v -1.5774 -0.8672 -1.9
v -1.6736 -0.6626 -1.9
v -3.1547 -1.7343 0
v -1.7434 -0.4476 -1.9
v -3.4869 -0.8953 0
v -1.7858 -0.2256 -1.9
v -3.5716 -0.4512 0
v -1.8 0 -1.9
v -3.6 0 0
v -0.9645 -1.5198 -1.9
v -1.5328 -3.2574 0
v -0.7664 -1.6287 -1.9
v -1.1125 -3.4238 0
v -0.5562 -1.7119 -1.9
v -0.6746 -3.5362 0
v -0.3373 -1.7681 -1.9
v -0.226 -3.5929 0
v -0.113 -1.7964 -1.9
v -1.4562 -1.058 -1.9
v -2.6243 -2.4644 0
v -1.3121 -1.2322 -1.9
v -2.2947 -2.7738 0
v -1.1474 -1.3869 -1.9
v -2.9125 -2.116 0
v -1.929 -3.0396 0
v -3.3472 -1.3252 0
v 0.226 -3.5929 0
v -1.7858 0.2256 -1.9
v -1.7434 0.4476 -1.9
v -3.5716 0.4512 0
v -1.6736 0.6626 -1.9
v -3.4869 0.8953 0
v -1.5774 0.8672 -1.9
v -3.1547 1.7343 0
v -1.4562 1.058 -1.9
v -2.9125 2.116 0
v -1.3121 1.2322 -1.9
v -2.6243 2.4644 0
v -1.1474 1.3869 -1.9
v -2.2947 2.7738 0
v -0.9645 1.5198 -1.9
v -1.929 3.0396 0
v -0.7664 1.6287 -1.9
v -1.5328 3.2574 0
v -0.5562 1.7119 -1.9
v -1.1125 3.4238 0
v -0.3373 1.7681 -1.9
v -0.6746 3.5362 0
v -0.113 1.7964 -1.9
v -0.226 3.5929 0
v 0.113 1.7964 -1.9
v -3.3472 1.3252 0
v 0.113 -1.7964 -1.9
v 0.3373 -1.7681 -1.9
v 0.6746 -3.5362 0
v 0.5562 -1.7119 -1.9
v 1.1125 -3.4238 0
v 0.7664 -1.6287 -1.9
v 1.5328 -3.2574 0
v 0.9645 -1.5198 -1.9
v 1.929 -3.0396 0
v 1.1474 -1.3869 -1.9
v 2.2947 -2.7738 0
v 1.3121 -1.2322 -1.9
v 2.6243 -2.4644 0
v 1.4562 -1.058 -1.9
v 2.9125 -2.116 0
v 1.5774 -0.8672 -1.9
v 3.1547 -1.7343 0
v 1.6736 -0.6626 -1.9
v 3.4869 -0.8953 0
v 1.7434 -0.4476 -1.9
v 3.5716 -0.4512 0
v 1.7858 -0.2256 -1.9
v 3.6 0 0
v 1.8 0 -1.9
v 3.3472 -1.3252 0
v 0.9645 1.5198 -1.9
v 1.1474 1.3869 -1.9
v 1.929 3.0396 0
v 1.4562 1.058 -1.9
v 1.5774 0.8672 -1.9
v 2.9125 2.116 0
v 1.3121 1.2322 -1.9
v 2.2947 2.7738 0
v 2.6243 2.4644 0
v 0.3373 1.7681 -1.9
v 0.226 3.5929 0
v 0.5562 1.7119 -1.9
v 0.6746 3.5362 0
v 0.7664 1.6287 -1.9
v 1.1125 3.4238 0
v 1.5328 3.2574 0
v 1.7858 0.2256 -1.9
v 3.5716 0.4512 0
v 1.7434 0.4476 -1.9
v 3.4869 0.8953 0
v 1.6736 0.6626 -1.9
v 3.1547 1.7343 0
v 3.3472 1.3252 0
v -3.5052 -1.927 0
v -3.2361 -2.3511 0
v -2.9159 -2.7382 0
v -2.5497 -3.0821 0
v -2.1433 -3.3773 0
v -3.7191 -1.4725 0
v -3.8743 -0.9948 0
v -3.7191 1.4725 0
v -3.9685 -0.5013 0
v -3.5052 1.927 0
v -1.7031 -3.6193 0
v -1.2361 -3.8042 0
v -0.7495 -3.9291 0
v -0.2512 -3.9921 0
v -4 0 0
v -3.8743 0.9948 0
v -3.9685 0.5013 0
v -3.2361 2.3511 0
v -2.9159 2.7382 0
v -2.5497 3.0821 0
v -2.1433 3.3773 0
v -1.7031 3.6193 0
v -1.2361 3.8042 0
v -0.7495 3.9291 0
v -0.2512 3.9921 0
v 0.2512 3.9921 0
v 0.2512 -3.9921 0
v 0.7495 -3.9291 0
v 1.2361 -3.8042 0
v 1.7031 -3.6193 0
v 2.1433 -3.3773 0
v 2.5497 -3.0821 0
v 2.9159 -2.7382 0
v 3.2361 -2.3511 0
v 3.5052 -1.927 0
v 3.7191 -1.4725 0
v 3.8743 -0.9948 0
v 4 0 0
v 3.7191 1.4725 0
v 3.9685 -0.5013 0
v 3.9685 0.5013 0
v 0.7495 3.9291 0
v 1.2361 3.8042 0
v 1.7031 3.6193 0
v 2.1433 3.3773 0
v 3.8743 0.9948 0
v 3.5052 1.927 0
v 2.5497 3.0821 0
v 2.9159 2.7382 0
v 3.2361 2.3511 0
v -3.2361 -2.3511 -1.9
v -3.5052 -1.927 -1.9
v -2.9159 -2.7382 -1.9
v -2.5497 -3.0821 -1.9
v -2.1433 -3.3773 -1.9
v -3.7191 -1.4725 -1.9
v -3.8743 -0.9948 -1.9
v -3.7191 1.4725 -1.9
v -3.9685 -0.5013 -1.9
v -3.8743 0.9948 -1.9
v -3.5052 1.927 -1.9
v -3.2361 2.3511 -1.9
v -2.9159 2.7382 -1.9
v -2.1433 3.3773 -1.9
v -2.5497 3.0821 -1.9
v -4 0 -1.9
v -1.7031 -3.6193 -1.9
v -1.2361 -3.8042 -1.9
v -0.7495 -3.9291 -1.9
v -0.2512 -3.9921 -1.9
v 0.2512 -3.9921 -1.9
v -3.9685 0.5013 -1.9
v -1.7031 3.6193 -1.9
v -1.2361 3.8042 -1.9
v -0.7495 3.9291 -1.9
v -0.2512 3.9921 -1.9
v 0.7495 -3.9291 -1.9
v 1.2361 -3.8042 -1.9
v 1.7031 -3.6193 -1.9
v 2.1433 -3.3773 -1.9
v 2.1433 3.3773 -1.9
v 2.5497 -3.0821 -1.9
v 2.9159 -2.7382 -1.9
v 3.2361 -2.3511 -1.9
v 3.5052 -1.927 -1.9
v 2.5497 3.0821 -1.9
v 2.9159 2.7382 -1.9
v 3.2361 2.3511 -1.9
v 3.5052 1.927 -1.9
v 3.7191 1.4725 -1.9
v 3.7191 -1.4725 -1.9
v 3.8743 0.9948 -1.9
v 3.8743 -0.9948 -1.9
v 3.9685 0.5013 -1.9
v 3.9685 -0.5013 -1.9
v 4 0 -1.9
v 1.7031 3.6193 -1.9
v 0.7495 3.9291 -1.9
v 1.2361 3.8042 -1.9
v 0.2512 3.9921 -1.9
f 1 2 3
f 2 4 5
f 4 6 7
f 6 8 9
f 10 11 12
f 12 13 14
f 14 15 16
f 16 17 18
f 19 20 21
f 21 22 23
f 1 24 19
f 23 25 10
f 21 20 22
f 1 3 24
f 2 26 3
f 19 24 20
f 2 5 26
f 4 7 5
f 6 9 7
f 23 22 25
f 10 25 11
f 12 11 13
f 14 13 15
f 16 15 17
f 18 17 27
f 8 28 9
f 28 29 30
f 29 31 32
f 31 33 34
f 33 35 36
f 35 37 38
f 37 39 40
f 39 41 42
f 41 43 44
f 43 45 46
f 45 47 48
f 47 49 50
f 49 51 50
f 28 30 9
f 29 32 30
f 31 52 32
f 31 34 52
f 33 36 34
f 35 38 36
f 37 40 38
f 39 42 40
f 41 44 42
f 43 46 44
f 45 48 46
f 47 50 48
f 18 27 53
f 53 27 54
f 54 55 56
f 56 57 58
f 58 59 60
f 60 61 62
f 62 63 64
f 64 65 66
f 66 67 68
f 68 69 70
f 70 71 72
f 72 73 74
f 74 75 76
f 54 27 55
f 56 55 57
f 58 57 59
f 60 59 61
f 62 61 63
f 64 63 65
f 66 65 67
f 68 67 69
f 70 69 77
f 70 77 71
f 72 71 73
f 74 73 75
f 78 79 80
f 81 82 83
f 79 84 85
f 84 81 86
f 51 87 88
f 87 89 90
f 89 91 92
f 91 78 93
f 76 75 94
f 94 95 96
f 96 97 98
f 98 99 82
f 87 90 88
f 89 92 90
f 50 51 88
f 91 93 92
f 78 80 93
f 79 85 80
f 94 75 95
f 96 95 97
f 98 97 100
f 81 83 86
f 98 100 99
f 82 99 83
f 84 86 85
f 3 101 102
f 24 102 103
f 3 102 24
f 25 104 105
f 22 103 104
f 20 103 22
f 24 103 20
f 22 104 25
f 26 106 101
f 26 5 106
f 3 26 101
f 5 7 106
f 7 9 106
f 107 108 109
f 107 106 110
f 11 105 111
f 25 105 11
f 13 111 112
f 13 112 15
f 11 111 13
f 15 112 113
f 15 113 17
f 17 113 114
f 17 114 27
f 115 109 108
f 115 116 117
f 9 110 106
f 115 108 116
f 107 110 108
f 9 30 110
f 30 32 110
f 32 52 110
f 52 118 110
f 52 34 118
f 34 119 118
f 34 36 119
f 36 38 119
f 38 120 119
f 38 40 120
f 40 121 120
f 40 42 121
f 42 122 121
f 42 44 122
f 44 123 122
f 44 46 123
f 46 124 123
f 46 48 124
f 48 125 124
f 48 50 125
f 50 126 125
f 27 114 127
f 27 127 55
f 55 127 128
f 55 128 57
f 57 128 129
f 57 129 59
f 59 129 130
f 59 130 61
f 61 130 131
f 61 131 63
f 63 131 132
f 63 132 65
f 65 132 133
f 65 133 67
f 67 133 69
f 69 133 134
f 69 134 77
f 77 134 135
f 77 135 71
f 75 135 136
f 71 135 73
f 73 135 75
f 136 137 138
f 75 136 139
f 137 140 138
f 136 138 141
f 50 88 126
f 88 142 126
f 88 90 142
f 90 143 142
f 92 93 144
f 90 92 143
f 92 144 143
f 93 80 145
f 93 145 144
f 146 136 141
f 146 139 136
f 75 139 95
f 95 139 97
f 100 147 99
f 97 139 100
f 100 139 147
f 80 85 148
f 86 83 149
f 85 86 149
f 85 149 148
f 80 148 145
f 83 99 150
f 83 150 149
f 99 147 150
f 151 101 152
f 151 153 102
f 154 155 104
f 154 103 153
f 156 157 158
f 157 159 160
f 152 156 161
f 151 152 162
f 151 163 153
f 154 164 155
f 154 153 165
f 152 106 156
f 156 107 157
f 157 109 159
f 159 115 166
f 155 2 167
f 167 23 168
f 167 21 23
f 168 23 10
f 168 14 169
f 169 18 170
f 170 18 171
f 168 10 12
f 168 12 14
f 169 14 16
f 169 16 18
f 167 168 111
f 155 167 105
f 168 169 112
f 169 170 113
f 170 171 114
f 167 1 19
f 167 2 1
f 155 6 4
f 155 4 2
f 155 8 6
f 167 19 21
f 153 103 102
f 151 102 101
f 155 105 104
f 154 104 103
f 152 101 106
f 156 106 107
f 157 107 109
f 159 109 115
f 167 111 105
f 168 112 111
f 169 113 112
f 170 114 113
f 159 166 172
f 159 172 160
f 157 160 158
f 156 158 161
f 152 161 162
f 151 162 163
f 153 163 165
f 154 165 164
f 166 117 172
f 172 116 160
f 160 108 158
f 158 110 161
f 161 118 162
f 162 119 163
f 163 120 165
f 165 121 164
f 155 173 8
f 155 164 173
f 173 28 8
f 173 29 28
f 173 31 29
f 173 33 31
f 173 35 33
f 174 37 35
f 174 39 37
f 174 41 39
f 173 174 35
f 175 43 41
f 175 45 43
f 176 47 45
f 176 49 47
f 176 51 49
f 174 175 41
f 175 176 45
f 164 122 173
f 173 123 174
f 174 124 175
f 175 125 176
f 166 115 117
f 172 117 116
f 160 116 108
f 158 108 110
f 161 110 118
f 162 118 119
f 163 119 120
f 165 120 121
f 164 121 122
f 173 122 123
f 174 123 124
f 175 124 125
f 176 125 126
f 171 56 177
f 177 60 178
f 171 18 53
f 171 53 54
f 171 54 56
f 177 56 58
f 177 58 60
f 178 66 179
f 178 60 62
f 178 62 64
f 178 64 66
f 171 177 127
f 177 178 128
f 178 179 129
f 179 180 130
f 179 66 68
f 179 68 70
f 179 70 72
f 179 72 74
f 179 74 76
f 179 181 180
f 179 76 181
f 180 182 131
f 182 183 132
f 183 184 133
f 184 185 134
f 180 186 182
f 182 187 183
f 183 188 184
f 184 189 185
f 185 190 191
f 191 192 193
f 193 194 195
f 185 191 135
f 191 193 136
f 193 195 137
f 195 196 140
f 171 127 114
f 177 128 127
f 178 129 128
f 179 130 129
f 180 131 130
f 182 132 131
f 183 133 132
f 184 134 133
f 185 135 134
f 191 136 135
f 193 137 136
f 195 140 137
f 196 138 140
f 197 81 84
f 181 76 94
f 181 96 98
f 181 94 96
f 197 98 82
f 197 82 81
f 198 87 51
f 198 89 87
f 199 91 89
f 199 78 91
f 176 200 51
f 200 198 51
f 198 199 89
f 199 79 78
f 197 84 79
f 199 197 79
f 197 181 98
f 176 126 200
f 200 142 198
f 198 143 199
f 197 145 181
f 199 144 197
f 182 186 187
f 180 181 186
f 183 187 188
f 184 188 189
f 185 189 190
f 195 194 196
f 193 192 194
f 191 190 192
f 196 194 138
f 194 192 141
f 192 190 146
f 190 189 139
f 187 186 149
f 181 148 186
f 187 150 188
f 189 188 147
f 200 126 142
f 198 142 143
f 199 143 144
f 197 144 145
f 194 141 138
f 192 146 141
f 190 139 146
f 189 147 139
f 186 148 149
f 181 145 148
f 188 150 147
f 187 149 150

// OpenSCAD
$fn = 50;

difference() {
	union() {
		translate(v = [0, 0, -1.9000000000000004]) {
			cylinder(h = 4.9, r = 4.0);
		}
	}
	union() {
		translate(v = [0, 0, 0]) {
			rotate(a = [0, 0, 0]) {
				difference() {
					union() {
						translate(v = [0, 0, -4.9]) {
							cylinder(h = 4.9, r = 1.5);
						}
						translate(v = [0, 0, -1.9]) {
							cylinder(h = 1.9, r1 = 1.8, r2 = 3.6);
						}
						translate(v = [0, 0, -4.9]) {
							cylinder(h = 4.9, r = 1.8);
						}
						translate(v = [0, 0, -4.9]) {
							cylinder(h = 4.9, r = 1.5);
						}
					}
					union();
				}
			}
		}
		#cylinder(h = 3, r = 5.0);
	}
}
